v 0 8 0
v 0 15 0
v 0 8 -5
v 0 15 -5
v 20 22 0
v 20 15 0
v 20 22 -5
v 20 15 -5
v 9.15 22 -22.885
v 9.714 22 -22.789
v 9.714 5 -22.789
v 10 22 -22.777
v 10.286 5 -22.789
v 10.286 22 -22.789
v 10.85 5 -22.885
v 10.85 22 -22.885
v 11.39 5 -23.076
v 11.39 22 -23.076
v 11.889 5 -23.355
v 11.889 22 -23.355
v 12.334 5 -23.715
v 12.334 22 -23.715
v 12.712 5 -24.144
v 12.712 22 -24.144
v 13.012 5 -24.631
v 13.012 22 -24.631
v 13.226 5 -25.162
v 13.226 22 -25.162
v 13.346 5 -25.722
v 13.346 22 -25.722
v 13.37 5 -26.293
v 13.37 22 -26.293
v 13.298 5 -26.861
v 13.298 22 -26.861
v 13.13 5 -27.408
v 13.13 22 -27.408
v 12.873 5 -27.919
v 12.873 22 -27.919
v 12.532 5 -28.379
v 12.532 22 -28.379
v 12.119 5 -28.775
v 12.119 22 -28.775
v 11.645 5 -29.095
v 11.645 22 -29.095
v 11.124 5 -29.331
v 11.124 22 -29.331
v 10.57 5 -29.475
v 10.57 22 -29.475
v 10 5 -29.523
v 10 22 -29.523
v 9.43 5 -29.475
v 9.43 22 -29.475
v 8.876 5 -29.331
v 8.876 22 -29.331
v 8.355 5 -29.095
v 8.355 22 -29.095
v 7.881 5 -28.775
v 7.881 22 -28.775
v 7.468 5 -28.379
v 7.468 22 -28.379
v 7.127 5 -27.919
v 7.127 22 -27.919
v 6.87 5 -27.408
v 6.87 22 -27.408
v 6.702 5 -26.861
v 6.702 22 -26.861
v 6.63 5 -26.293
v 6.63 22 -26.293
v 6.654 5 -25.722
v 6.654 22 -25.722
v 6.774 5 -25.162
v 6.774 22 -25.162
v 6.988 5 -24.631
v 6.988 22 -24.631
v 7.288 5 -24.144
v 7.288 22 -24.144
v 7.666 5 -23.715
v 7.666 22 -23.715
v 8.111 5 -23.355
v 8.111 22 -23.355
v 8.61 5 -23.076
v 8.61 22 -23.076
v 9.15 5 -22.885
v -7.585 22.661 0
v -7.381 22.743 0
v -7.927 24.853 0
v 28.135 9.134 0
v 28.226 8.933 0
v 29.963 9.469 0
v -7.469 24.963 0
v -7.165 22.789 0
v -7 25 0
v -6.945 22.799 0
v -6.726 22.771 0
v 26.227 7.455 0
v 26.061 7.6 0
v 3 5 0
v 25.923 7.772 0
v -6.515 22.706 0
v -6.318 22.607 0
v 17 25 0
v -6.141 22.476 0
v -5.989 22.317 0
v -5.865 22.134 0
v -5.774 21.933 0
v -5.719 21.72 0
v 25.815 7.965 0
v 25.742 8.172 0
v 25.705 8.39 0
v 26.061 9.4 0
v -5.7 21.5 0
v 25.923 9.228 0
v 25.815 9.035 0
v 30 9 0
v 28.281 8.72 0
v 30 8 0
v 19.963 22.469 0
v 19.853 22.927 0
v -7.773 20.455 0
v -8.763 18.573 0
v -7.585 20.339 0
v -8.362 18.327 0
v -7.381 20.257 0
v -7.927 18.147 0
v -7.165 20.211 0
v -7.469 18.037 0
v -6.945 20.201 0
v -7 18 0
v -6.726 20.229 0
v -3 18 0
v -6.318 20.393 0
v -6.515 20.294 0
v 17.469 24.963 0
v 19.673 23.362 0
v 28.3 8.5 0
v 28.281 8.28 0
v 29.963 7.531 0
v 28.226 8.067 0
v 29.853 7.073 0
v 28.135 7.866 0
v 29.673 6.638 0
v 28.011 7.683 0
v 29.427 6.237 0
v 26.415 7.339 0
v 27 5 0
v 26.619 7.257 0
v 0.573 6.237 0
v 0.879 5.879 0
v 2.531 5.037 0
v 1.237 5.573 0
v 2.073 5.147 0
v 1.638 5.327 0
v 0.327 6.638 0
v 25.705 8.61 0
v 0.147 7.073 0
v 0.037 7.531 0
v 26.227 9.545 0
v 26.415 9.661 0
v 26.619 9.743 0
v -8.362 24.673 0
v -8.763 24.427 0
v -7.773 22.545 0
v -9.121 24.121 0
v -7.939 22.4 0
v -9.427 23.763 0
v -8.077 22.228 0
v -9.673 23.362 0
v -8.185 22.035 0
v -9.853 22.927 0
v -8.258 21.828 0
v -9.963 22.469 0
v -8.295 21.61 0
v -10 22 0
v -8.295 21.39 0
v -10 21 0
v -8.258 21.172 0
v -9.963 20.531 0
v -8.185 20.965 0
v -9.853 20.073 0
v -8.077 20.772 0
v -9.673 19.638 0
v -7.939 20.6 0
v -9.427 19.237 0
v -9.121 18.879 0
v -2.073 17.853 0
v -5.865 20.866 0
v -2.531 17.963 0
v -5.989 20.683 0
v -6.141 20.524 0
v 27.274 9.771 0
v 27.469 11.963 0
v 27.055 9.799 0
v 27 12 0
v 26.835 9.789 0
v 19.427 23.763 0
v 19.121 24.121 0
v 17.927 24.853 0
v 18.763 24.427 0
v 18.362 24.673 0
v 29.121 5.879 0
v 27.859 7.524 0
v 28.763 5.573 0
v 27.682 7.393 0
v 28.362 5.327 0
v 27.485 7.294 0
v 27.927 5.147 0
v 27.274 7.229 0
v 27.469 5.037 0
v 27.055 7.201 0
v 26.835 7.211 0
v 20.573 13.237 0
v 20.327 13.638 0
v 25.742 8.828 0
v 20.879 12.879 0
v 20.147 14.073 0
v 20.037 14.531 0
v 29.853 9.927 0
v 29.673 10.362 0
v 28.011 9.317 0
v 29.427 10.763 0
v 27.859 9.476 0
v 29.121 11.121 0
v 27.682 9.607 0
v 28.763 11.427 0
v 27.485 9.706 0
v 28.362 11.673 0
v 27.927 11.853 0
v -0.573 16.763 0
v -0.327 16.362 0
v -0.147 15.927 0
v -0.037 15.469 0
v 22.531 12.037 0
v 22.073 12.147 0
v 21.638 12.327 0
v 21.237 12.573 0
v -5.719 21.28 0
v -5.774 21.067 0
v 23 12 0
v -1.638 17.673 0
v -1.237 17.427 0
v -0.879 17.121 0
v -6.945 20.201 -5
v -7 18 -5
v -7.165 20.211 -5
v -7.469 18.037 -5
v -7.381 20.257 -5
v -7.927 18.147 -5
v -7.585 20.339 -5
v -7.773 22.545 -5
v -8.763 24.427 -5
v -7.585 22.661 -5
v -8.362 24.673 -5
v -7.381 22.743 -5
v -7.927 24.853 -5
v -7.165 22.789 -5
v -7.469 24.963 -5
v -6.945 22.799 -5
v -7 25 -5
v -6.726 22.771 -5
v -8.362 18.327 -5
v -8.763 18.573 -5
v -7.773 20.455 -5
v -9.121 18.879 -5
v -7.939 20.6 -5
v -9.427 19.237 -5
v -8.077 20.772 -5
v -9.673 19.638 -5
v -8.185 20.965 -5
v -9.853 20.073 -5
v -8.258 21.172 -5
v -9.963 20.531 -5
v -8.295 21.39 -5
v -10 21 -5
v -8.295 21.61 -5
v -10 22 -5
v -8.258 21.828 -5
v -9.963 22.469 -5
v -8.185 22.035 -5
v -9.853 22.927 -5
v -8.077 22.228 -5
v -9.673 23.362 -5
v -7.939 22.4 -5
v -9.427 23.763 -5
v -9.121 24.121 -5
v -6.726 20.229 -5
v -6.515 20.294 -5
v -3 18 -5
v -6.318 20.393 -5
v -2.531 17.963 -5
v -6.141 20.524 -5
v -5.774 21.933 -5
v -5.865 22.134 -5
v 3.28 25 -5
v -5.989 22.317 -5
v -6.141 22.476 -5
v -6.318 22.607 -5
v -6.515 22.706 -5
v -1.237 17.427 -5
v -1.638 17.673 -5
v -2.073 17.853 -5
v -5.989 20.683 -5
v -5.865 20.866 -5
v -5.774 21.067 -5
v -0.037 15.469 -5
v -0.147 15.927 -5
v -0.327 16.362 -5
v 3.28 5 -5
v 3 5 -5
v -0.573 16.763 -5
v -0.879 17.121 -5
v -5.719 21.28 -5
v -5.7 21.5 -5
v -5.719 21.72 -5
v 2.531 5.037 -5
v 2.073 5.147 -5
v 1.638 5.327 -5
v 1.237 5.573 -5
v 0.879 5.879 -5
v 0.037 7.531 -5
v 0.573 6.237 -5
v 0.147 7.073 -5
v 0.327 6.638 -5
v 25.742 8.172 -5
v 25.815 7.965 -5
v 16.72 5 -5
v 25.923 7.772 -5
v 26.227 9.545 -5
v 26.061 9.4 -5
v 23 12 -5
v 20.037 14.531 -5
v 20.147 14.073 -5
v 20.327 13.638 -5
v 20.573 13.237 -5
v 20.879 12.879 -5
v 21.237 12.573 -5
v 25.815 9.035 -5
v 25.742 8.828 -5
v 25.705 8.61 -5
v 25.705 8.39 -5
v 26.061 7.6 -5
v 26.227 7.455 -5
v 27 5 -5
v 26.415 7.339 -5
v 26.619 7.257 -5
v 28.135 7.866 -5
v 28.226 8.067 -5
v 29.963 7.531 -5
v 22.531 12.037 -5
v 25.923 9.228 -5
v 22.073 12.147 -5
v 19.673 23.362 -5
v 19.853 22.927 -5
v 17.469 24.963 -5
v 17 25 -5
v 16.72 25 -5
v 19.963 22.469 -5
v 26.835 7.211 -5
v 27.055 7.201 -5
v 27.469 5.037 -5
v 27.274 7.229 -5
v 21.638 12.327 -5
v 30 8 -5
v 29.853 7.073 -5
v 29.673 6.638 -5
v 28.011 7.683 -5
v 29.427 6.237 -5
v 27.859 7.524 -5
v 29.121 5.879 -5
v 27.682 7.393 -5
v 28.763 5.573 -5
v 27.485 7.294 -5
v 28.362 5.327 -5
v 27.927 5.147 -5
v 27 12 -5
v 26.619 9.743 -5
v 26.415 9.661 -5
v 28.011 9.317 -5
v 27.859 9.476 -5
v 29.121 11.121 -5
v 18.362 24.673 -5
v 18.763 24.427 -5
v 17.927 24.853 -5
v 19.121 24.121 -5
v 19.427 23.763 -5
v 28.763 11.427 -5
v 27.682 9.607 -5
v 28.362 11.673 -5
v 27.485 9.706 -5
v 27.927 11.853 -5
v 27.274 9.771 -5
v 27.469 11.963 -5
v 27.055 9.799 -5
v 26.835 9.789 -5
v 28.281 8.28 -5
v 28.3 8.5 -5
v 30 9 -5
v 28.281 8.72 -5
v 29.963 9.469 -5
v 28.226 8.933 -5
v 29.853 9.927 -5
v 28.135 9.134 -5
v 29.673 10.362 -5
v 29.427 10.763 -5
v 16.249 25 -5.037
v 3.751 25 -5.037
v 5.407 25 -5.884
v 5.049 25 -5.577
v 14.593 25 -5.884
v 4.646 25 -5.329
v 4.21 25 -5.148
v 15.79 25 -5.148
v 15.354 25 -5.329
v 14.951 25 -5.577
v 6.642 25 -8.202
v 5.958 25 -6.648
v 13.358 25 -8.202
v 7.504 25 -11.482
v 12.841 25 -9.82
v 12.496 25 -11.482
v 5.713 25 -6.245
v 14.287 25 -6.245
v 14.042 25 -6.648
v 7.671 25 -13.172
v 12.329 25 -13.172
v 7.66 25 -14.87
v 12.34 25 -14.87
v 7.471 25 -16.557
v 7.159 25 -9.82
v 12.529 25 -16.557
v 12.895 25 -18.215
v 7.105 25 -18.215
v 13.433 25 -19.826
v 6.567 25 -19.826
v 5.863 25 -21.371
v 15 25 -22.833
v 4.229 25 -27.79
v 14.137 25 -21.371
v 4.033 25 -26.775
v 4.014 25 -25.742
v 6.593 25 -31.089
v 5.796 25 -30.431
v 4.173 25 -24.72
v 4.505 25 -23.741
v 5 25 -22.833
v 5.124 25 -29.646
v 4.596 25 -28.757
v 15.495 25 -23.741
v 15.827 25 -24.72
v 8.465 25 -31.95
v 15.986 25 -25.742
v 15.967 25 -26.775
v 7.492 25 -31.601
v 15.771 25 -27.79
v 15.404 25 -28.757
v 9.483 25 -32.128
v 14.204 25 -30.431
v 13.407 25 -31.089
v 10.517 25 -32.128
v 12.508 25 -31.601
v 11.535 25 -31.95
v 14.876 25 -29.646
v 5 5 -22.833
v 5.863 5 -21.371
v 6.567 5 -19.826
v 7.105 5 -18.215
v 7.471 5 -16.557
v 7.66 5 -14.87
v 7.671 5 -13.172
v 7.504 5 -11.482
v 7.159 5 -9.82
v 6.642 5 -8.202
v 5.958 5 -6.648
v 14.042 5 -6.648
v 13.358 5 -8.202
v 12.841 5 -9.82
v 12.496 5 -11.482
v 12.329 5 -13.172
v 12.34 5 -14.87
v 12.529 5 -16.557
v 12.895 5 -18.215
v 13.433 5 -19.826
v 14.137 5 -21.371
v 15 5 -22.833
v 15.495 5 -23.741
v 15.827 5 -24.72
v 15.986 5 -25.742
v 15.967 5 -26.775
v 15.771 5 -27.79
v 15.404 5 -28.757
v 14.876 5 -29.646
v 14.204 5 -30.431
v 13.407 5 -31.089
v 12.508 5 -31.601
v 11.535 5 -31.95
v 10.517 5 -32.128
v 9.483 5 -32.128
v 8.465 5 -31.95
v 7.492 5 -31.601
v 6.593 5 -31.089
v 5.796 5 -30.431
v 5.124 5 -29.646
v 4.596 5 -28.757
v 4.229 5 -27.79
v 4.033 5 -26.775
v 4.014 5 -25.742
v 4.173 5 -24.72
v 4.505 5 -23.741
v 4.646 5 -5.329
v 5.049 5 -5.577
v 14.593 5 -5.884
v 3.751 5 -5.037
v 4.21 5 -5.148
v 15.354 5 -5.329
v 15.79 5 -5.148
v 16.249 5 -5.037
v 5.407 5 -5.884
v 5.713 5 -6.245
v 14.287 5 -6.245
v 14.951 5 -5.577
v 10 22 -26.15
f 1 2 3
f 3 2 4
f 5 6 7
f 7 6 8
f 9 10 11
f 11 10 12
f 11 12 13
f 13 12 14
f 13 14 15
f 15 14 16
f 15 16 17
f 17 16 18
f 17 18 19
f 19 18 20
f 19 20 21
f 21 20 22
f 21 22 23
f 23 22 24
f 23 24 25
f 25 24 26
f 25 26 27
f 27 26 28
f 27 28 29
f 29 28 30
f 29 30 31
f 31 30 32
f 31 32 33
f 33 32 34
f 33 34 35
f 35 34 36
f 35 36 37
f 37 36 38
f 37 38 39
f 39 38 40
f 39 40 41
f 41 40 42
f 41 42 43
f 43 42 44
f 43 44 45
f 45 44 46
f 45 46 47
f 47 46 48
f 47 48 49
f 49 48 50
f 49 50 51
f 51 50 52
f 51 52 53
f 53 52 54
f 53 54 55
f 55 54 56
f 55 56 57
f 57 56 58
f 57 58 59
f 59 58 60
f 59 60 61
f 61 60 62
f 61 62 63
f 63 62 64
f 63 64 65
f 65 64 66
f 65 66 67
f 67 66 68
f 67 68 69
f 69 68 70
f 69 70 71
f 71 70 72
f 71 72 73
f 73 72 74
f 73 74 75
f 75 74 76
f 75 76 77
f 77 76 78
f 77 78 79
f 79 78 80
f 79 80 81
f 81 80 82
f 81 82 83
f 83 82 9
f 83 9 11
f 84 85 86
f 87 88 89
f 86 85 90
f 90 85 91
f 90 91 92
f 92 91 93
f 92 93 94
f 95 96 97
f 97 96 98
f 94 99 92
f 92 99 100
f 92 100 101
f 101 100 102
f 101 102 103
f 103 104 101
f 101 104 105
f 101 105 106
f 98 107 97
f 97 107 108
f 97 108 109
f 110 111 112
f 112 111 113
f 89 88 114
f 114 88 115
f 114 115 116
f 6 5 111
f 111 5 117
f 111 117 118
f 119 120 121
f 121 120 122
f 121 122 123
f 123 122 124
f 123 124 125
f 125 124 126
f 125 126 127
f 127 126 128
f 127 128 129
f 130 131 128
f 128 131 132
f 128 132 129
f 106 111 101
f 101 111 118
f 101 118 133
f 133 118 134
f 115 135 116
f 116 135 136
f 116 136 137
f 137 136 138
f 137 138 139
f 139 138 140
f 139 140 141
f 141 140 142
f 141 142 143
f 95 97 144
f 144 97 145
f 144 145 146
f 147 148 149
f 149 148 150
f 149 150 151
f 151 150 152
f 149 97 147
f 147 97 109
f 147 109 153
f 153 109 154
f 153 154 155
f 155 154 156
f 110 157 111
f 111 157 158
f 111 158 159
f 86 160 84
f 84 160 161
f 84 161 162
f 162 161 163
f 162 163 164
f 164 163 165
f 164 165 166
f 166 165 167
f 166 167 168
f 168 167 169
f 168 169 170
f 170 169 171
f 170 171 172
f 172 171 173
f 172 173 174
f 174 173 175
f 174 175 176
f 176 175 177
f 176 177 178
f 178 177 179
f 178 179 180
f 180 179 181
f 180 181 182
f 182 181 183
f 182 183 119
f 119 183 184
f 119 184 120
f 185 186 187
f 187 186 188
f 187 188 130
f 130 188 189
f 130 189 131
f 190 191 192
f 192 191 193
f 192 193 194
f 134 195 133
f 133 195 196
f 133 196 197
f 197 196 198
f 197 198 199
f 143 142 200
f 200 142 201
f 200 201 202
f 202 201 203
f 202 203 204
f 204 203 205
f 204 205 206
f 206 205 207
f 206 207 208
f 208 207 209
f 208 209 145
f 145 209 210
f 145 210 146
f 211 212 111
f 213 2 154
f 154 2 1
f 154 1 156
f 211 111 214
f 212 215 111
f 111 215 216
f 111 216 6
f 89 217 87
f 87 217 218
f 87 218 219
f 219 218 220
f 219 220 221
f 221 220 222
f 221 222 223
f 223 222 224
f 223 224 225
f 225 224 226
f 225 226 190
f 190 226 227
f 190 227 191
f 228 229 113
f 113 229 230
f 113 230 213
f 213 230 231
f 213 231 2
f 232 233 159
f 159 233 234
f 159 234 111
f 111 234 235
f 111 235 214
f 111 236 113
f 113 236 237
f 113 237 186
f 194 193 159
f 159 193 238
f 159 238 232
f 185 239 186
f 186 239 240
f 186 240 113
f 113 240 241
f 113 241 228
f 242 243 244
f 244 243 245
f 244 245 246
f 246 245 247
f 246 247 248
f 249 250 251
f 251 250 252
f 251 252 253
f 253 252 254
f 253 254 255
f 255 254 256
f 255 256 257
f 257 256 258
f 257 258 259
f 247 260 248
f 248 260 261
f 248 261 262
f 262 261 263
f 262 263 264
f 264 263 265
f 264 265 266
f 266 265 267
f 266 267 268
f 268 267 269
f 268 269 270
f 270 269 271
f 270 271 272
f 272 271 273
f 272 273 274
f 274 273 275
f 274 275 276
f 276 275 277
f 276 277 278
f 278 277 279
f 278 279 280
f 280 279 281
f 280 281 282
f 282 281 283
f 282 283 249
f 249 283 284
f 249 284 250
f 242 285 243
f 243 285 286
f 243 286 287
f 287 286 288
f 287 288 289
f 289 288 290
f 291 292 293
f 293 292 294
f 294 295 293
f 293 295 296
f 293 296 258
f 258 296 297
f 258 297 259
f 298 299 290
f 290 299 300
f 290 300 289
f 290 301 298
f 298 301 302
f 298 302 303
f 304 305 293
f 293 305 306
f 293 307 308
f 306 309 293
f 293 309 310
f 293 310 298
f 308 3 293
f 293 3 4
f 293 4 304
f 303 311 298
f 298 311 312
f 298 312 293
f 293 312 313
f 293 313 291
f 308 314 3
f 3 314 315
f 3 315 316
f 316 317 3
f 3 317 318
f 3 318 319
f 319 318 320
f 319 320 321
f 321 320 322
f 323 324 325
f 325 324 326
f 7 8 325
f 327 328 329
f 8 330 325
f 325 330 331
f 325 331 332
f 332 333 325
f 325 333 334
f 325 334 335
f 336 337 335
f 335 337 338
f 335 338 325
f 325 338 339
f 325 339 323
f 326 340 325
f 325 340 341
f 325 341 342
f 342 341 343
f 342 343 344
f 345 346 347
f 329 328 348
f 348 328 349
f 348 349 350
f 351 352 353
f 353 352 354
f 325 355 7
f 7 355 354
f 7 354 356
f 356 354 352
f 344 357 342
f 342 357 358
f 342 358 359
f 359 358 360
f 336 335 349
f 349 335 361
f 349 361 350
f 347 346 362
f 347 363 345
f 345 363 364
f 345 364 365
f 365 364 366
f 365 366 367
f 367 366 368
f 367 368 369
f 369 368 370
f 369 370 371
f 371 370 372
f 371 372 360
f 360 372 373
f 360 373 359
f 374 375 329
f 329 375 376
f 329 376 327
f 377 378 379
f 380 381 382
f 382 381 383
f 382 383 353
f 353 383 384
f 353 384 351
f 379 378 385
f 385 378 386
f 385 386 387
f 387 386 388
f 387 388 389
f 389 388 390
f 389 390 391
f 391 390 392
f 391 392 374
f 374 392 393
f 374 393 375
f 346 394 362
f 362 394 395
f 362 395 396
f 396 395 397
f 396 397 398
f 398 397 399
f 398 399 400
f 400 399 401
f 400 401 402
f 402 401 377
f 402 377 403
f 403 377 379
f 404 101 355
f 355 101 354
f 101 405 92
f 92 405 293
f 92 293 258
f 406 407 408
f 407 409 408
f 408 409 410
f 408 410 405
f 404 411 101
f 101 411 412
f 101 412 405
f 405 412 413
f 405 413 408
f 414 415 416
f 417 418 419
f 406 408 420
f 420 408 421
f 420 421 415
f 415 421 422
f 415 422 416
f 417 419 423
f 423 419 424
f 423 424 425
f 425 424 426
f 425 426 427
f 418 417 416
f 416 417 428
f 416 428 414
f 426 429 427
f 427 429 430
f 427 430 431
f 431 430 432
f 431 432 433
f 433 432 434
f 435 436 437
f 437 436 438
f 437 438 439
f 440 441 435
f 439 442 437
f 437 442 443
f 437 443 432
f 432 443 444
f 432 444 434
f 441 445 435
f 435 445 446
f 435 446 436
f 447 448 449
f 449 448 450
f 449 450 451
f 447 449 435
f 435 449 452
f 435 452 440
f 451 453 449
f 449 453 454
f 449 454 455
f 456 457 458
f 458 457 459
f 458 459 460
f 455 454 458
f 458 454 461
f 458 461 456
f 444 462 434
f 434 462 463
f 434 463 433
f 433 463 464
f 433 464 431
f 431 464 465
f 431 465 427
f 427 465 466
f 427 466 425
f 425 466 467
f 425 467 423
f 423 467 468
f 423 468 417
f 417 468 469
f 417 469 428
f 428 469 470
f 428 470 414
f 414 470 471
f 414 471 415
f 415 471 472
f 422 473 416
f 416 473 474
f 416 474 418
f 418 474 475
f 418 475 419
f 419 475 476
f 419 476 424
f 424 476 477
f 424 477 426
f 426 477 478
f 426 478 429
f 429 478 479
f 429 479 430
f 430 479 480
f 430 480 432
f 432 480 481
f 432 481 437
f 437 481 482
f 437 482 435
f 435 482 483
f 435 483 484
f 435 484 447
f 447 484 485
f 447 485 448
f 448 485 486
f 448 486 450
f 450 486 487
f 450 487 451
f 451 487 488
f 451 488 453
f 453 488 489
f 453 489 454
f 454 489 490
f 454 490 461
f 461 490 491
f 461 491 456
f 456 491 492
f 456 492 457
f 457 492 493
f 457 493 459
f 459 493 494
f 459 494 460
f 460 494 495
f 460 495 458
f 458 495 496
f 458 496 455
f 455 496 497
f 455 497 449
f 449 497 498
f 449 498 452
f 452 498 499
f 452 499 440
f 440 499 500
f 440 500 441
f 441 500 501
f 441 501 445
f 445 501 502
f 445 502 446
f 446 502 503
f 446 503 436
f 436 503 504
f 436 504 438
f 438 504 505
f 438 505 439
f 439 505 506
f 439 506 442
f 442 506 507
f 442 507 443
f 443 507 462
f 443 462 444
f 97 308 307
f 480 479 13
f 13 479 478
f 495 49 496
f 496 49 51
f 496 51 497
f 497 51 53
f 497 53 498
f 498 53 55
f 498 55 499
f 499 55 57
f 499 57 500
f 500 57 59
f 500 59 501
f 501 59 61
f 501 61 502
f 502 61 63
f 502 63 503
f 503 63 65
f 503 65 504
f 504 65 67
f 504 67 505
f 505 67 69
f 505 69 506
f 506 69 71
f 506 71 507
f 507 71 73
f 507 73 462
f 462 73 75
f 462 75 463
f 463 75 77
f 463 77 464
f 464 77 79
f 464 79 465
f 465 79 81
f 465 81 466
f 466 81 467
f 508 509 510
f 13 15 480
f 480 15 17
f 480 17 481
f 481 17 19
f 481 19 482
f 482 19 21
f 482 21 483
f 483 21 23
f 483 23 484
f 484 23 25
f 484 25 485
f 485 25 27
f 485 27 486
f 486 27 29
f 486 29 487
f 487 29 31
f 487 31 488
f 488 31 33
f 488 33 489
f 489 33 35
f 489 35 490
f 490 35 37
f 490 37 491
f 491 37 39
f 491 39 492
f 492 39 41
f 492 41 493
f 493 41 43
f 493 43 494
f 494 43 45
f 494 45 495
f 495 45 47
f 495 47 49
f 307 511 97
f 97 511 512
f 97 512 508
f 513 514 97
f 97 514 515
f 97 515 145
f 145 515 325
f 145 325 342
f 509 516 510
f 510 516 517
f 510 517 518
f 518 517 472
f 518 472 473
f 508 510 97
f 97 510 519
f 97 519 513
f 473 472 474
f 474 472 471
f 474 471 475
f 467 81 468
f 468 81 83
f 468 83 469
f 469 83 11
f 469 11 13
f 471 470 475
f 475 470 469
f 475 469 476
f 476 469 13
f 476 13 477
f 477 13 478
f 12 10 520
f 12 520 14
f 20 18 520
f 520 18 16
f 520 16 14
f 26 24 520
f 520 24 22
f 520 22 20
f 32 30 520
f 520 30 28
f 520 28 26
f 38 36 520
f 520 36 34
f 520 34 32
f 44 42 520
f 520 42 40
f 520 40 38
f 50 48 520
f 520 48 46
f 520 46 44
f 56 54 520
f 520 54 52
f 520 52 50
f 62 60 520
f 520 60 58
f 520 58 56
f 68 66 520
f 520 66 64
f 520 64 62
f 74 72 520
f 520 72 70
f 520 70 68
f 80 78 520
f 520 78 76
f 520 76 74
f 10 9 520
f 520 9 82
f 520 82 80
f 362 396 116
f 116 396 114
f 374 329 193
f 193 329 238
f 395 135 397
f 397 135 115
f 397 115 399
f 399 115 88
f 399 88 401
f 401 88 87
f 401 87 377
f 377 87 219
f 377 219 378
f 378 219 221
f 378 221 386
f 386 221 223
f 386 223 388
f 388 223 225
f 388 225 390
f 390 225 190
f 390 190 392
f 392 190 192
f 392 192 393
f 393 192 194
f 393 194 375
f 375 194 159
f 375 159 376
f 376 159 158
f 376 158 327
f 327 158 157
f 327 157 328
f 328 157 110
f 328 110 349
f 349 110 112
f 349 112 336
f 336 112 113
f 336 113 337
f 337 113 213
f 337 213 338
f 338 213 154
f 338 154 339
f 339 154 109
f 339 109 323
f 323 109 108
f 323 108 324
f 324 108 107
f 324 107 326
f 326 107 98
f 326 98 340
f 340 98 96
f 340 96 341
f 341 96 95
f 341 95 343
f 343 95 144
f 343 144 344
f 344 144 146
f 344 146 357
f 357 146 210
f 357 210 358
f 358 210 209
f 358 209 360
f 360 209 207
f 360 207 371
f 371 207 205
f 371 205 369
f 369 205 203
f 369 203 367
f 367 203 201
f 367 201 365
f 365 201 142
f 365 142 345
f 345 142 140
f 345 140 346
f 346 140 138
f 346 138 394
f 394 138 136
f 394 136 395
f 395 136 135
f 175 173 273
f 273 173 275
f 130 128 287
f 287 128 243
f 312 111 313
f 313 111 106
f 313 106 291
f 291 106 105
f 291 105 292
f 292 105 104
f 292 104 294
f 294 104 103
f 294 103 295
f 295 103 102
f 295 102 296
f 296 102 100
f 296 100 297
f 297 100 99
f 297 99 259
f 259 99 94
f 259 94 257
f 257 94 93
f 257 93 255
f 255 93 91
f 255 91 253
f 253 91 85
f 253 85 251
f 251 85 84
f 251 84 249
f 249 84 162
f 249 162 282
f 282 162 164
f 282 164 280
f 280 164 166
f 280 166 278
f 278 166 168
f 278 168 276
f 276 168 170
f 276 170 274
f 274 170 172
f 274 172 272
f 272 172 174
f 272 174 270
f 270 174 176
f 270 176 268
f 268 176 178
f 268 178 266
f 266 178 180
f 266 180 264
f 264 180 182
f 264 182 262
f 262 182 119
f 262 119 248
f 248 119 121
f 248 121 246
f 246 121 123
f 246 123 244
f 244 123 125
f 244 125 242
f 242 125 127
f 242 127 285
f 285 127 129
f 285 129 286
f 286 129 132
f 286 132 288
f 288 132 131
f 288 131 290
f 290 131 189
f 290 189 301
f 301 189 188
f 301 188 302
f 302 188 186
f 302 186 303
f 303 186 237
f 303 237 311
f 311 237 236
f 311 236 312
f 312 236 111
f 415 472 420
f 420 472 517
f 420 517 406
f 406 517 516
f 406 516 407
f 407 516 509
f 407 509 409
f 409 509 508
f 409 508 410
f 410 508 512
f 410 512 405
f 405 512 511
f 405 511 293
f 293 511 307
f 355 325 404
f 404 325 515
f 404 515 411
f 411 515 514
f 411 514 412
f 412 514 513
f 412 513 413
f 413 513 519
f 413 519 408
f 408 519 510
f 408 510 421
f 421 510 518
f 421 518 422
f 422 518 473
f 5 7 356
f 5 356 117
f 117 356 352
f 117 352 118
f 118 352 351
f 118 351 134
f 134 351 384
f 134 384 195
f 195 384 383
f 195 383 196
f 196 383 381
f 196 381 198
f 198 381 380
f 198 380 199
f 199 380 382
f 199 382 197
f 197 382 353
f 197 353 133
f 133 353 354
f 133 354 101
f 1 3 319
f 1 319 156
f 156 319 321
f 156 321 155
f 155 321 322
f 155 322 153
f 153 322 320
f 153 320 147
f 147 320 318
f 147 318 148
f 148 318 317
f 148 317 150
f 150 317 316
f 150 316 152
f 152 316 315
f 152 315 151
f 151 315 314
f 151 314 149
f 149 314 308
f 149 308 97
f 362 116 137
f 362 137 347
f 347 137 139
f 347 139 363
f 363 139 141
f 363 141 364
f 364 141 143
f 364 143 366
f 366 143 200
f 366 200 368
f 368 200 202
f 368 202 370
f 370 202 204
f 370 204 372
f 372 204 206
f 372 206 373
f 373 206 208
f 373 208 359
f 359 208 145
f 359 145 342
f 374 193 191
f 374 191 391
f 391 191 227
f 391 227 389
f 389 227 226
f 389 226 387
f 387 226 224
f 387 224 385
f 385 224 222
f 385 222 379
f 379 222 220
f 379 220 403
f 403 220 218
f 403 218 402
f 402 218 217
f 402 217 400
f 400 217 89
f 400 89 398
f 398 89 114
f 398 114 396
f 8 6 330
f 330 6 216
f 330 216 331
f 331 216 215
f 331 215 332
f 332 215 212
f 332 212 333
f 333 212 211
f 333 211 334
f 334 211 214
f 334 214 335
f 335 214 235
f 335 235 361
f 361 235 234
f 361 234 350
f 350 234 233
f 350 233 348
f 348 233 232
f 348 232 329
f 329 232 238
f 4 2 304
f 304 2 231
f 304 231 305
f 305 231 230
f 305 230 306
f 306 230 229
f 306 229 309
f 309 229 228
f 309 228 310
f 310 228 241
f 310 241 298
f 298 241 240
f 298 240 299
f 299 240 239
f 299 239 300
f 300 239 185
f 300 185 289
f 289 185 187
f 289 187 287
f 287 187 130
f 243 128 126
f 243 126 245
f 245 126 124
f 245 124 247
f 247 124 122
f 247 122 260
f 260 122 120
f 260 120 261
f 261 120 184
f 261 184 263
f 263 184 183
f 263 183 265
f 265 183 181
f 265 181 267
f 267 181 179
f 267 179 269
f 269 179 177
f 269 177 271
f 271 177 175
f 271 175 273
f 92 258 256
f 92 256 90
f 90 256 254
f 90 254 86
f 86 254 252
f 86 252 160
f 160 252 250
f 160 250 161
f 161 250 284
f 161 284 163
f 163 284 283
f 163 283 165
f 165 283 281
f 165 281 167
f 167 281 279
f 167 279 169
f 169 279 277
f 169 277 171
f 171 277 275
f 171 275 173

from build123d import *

# Parameters (mm, degrees)
SKETCH1_W           = 20
SKETCH1_H           = 35
SKETCH1_R           = 3.3734375
BOSS_EXTRUDE1_DEPTH = 5
SKETCH2_W           = 20
SKETCH2_H           = 5
BOSS_EXTRUDE2_DEPTH = 20
SKETCH3_R           = 3.3734375
BOSS_EXTRUDE3_DEPTH = 20
SKETCH4_W           = 20
SKETCH4_H           = 35
CUT_EXTRUDE1_DEPTH  = 5
BOSS_EXTRUDE4_START = -3
SKETCH5_R           = 3.3734375
BOSS_EXTRUDE4_DEPTH = 3
SKETCH6_W           = 10
SKETCH6_H           = 7
SKETCH6_R           = 1.3
BOSS_EXTRUDE5_DEPTH = 5
FILLET1_R           = 3


with BuildPart() as part:
    # Sketch1 → Boss-Extrude1 (new body)
    with BuildSketch(Plane(origin=(0, 0, 0), x_dir=(1, 0, 0), z_dir=(0, 1, 0))):
        with Locations((10, 17.5)):
            Rectangle(SKETCH1_W, SKETCH1_H)
        with Locations(Location((10, 26.15, 0), (0, 0, 270))):
            Circle(SKETCH1_R, mode=Mode.SUBTRACT)
    extrude(amount=BOSS_EXTRUDE1_DEPTH)

    # Sketch2 → Boss-Extrude2 (add)
    with BuildSketch(Plane(origin=(0, 5, 0), x_dir=(1, 0, 0), z_dir=(0, 1, 0))):
        with Locations((10, 2.5)):
            Rectangle(SKETCH2_W, SKETCH2_H)
    extrude(amount=BOSS_EXTRUDE2_DEPTH)

    # Sketch3 → Boss-Extrude3 (add)
    with BuildSketch(Plane(origin=(0, 5, 0), x_dir=(1, 0, 0), z_dir=(0, 1, 0))):
        with BuildLine():
            Line((5, 5), (15, 5))
            ThreePointArc((15, 5), (12.311517531, 13.916687605), (15, 22.83337521))
            ThreePointArc((15, 22.83337521), (10, 32.15), (5, 22.83337521))
            ThreePointArc((5, 22.83337521), (7.688482469, 13.916687605), (5, 5))
        make_face()
        with Locations(Location((10, 26.15, 0), (0, 0, 270))):
            Circle(SKETCH3_R, mode=Mode.SUBTRACT)
    extrude(amount=BOSS_EXTRUDE3_DEPTH)

    # Sketch4 → Cut-Extrude1 (cut)
    with BuildSketch(Plane.XZ):
        with Locations((10, -17.5)):
            Rectangle(SKETCH4_W, SKETCH4_H)
    extrude(amount=-CUT_EXTRUDE1_DEPTH, mode=Mode.SUBTRACT)

    # Sketch5 → Boss-Extrude4 (add)
    with BuildSketch(Plane(origin=(0, 25, 0), x_dir=(1, 0, 0), z_dir=(0, 1, 0)).offset(BOSS_EXTRUDE4_START)):
        with Locations(Location((10, 26.15, 0), (0, 0, 90))):
            Circle(SKETCH5_R)
    extrude(amount=BOSS_EXTRUDE4_DEPTH)

    # Sketch6 → Boss-Extrude5 (add)
    # profile 1 of 2: a face of its own
    with BuildSketch(Plane.XY):
        with Locations((25, 8.5)):
            Rectangle(SKETCH6_W, SKETCH6_H)
        with Locations((27, 8.5)):
            Circle(SKETCH6_R, mode=Mode.SUBTRACT)
    # profile 2 of 2: a face of its own
    with BuildSketch(Plane.XY):
        with Locations((-5, 21.5)):
            Rectangle(SKETCH6_W, SKETCH6_H)
        with Locations((-7, 21.5)):
            Circle(SKETCH6_R, mode=Mode.SUBTRACT)
    extrude(amount=-BOSS_EXTRUDE5_DEPTH)

    # Fillet1
    fillet1_edges = [part.edges().sort_by_distance(p)[0] for p in [
        (20, 25, -2.5),
        (5, 15, -5),
        (15, 15, -5),
        (0, 5, -2.5),
        (30, 5, -2.5),
        (30, 12, -2.5),
        (20, 12, -2.5),
        (-10, 25, -2.5),
        (-10, 18, -2.5),
        (0, 18, -2.5),
    ]]
    fillet(fillet1_edges, radius=FILLET1_R)


solid = part.part
